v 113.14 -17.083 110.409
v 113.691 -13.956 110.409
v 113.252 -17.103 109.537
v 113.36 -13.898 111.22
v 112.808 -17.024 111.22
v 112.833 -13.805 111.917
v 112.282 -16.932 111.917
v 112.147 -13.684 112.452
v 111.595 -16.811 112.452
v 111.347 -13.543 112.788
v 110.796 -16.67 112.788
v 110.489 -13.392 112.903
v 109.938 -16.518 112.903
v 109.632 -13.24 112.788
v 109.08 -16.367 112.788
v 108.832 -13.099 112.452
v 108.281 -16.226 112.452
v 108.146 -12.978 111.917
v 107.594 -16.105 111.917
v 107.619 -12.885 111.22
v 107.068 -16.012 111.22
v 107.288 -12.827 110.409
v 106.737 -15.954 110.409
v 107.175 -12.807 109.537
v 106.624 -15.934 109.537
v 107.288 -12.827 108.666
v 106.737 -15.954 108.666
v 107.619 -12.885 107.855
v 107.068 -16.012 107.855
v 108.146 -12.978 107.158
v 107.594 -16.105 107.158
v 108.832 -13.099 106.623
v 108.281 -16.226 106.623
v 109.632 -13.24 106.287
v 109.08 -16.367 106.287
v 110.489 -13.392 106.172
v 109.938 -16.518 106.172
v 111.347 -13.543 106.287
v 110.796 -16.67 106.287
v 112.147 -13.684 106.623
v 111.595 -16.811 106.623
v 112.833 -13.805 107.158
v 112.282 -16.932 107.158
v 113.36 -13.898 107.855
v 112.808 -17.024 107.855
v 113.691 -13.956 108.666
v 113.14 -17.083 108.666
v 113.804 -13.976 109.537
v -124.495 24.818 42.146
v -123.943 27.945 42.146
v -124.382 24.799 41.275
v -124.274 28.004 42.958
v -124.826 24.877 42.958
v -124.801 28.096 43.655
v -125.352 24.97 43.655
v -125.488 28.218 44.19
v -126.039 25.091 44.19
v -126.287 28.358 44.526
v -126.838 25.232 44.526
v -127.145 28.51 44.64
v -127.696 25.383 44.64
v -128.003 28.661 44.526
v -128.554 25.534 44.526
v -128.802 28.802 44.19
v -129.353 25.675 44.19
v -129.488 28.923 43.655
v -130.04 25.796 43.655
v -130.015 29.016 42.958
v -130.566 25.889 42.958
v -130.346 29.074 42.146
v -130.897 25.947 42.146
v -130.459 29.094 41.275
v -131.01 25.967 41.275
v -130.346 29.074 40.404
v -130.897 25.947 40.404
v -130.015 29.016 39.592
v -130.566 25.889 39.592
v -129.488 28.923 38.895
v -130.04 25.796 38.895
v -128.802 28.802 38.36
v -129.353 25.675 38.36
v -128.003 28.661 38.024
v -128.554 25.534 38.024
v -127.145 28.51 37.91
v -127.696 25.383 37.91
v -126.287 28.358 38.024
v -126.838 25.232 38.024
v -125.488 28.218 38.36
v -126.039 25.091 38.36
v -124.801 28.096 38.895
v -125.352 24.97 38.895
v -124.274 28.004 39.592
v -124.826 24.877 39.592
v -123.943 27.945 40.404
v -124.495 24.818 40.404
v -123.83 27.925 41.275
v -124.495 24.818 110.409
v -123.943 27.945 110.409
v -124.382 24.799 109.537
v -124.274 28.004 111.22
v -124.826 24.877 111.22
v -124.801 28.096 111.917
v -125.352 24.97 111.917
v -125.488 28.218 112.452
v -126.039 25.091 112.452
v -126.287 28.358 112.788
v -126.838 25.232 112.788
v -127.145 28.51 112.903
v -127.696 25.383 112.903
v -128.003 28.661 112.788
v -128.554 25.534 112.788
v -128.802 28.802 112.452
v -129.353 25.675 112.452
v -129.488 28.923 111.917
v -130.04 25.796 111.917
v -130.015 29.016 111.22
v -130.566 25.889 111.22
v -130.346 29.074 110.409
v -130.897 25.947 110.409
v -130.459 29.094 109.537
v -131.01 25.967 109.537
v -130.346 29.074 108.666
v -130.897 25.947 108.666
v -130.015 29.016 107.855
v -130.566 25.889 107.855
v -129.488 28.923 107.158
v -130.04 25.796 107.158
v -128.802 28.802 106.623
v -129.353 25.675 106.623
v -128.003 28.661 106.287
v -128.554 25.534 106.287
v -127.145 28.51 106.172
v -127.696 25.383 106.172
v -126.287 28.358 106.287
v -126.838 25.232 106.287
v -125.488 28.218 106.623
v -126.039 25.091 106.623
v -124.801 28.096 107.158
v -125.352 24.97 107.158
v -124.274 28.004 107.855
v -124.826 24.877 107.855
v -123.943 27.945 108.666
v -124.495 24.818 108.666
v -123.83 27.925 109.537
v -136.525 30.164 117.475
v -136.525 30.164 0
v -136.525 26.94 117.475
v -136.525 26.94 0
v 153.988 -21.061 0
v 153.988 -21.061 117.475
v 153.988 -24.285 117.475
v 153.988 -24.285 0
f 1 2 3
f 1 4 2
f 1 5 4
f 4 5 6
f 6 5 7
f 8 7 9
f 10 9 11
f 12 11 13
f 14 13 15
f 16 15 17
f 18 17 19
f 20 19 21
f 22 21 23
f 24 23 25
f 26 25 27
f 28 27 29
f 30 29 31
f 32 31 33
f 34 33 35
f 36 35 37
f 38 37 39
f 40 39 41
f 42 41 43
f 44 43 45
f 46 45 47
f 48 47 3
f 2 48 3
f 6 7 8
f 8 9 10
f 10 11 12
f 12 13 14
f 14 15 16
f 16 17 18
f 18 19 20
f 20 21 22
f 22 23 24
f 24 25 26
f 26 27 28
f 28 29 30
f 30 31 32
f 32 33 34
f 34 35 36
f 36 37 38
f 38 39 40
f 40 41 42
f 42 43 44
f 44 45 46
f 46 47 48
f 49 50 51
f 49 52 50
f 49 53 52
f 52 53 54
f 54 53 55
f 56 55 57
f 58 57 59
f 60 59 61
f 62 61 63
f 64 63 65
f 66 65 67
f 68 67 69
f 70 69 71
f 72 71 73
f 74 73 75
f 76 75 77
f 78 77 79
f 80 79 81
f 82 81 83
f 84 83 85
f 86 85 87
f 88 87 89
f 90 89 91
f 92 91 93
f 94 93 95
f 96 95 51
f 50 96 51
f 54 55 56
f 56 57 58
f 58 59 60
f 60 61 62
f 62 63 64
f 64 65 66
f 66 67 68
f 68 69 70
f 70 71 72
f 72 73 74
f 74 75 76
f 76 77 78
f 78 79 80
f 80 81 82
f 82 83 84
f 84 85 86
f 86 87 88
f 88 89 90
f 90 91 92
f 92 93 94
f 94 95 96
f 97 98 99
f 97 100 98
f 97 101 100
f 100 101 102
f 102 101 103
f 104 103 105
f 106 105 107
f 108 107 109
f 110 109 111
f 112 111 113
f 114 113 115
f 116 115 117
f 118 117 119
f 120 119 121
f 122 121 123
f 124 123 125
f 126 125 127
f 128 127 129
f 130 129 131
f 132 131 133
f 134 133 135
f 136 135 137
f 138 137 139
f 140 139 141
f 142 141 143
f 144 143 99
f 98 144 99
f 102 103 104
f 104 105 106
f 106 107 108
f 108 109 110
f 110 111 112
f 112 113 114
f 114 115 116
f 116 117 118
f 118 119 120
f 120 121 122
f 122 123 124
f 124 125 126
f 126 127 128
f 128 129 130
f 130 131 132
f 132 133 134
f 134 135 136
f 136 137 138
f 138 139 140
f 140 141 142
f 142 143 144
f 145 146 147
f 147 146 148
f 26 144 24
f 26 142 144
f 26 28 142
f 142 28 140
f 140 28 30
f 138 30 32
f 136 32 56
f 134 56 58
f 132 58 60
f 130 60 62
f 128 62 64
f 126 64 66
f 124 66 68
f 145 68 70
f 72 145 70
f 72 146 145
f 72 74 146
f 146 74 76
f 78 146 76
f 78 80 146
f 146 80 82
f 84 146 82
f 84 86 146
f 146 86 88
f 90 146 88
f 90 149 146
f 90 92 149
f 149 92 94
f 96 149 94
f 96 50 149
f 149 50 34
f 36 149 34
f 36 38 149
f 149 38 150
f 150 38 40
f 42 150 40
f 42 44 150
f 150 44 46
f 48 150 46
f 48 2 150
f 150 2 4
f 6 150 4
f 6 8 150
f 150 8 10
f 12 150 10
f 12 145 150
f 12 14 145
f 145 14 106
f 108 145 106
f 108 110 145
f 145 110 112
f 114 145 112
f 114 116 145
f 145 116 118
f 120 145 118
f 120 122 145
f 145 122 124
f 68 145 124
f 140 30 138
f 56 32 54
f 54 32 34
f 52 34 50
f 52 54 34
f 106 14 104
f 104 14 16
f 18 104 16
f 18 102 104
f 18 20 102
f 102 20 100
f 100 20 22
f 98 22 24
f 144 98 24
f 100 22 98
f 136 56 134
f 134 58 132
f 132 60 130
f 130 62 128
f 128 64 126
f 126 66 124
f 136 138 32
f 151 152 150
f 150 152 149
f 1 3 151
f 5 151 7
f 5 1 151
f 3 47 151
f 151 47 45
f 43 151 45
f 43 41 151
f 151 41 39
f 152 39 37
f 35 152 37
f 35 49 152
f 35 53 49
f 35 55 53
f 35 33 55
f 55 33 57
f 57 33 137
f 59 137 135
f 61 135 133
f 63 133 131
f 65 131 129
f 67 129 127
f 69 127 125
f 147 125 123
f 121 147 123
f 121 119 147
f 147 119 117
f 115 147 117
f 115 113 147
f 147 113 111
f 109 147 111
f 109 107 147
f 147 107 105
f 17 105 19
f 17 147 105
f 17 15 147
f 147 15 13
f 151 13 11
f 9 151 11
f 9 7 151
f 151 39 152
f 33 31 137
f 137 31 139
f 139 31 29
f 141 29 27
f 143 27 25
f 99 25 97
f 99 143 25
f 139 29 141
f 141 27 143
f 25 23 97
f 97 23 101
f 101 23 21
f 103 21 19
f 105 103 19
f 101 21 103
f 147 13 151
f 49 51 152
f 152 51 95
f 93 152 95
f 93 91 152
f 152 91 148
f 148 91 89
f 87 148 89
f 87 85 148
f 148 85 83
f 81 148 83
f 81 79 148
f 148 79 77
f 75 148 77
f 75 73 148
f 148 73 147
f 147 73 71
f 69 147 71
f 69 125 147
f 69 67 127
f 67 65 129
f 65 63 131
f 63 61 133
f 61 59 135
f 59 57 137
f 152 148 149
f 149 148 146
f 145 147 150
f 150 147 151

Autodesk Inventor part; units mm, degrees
ref_plane "YZ Plane" through (0, 0, 0) normal (1, 0, 0) x (0, 1, 0)
ref_plane "XZ Plane" through (0, 0, 0) normal (0, 1, 0) x (-1, 0, 0)
ref_plane "XY Plane" through (0, 0, 0) normal (0, 0, 1) x (1, 0, 0)
sketch "Sketch1" plane through (0, 0, 0) normal (0, 0, 1) x (1, 0, 0)
  line L0 (-136.525, 26.9398) -> (153.9875, -24.2854) projected
  line L1 (153.9875, -21.0615) -> (153.9875, -24.2854) projected
  line L2 (153.9875, -21.0615) -> (-136.525, 30.1637) projected
  line L3 (-136.525, 26.9398) -> (-136.525, 30.1637) projected
  point P0 (0, 0)
extrude "Extrusion1" add sketch "Sketch1" along normal blind 117.475
hole "Hole1" at (-127.1447, 28.5097, 109.5375) direction (-0.1736, -0.9848, 0) diameter 6.731 depth 25.4 tip angle 118
pattern_linear "Rectangular Pattern1" count 2 spacing 68.2625 along (0, 0, -1) of "Hole1"
pattern_linear "Rectangular Pattern2" count 2 spacing 241.3 along (0.9848, -0.1736, 0) of "Hole1"
properties part number "GE-12086-03"
